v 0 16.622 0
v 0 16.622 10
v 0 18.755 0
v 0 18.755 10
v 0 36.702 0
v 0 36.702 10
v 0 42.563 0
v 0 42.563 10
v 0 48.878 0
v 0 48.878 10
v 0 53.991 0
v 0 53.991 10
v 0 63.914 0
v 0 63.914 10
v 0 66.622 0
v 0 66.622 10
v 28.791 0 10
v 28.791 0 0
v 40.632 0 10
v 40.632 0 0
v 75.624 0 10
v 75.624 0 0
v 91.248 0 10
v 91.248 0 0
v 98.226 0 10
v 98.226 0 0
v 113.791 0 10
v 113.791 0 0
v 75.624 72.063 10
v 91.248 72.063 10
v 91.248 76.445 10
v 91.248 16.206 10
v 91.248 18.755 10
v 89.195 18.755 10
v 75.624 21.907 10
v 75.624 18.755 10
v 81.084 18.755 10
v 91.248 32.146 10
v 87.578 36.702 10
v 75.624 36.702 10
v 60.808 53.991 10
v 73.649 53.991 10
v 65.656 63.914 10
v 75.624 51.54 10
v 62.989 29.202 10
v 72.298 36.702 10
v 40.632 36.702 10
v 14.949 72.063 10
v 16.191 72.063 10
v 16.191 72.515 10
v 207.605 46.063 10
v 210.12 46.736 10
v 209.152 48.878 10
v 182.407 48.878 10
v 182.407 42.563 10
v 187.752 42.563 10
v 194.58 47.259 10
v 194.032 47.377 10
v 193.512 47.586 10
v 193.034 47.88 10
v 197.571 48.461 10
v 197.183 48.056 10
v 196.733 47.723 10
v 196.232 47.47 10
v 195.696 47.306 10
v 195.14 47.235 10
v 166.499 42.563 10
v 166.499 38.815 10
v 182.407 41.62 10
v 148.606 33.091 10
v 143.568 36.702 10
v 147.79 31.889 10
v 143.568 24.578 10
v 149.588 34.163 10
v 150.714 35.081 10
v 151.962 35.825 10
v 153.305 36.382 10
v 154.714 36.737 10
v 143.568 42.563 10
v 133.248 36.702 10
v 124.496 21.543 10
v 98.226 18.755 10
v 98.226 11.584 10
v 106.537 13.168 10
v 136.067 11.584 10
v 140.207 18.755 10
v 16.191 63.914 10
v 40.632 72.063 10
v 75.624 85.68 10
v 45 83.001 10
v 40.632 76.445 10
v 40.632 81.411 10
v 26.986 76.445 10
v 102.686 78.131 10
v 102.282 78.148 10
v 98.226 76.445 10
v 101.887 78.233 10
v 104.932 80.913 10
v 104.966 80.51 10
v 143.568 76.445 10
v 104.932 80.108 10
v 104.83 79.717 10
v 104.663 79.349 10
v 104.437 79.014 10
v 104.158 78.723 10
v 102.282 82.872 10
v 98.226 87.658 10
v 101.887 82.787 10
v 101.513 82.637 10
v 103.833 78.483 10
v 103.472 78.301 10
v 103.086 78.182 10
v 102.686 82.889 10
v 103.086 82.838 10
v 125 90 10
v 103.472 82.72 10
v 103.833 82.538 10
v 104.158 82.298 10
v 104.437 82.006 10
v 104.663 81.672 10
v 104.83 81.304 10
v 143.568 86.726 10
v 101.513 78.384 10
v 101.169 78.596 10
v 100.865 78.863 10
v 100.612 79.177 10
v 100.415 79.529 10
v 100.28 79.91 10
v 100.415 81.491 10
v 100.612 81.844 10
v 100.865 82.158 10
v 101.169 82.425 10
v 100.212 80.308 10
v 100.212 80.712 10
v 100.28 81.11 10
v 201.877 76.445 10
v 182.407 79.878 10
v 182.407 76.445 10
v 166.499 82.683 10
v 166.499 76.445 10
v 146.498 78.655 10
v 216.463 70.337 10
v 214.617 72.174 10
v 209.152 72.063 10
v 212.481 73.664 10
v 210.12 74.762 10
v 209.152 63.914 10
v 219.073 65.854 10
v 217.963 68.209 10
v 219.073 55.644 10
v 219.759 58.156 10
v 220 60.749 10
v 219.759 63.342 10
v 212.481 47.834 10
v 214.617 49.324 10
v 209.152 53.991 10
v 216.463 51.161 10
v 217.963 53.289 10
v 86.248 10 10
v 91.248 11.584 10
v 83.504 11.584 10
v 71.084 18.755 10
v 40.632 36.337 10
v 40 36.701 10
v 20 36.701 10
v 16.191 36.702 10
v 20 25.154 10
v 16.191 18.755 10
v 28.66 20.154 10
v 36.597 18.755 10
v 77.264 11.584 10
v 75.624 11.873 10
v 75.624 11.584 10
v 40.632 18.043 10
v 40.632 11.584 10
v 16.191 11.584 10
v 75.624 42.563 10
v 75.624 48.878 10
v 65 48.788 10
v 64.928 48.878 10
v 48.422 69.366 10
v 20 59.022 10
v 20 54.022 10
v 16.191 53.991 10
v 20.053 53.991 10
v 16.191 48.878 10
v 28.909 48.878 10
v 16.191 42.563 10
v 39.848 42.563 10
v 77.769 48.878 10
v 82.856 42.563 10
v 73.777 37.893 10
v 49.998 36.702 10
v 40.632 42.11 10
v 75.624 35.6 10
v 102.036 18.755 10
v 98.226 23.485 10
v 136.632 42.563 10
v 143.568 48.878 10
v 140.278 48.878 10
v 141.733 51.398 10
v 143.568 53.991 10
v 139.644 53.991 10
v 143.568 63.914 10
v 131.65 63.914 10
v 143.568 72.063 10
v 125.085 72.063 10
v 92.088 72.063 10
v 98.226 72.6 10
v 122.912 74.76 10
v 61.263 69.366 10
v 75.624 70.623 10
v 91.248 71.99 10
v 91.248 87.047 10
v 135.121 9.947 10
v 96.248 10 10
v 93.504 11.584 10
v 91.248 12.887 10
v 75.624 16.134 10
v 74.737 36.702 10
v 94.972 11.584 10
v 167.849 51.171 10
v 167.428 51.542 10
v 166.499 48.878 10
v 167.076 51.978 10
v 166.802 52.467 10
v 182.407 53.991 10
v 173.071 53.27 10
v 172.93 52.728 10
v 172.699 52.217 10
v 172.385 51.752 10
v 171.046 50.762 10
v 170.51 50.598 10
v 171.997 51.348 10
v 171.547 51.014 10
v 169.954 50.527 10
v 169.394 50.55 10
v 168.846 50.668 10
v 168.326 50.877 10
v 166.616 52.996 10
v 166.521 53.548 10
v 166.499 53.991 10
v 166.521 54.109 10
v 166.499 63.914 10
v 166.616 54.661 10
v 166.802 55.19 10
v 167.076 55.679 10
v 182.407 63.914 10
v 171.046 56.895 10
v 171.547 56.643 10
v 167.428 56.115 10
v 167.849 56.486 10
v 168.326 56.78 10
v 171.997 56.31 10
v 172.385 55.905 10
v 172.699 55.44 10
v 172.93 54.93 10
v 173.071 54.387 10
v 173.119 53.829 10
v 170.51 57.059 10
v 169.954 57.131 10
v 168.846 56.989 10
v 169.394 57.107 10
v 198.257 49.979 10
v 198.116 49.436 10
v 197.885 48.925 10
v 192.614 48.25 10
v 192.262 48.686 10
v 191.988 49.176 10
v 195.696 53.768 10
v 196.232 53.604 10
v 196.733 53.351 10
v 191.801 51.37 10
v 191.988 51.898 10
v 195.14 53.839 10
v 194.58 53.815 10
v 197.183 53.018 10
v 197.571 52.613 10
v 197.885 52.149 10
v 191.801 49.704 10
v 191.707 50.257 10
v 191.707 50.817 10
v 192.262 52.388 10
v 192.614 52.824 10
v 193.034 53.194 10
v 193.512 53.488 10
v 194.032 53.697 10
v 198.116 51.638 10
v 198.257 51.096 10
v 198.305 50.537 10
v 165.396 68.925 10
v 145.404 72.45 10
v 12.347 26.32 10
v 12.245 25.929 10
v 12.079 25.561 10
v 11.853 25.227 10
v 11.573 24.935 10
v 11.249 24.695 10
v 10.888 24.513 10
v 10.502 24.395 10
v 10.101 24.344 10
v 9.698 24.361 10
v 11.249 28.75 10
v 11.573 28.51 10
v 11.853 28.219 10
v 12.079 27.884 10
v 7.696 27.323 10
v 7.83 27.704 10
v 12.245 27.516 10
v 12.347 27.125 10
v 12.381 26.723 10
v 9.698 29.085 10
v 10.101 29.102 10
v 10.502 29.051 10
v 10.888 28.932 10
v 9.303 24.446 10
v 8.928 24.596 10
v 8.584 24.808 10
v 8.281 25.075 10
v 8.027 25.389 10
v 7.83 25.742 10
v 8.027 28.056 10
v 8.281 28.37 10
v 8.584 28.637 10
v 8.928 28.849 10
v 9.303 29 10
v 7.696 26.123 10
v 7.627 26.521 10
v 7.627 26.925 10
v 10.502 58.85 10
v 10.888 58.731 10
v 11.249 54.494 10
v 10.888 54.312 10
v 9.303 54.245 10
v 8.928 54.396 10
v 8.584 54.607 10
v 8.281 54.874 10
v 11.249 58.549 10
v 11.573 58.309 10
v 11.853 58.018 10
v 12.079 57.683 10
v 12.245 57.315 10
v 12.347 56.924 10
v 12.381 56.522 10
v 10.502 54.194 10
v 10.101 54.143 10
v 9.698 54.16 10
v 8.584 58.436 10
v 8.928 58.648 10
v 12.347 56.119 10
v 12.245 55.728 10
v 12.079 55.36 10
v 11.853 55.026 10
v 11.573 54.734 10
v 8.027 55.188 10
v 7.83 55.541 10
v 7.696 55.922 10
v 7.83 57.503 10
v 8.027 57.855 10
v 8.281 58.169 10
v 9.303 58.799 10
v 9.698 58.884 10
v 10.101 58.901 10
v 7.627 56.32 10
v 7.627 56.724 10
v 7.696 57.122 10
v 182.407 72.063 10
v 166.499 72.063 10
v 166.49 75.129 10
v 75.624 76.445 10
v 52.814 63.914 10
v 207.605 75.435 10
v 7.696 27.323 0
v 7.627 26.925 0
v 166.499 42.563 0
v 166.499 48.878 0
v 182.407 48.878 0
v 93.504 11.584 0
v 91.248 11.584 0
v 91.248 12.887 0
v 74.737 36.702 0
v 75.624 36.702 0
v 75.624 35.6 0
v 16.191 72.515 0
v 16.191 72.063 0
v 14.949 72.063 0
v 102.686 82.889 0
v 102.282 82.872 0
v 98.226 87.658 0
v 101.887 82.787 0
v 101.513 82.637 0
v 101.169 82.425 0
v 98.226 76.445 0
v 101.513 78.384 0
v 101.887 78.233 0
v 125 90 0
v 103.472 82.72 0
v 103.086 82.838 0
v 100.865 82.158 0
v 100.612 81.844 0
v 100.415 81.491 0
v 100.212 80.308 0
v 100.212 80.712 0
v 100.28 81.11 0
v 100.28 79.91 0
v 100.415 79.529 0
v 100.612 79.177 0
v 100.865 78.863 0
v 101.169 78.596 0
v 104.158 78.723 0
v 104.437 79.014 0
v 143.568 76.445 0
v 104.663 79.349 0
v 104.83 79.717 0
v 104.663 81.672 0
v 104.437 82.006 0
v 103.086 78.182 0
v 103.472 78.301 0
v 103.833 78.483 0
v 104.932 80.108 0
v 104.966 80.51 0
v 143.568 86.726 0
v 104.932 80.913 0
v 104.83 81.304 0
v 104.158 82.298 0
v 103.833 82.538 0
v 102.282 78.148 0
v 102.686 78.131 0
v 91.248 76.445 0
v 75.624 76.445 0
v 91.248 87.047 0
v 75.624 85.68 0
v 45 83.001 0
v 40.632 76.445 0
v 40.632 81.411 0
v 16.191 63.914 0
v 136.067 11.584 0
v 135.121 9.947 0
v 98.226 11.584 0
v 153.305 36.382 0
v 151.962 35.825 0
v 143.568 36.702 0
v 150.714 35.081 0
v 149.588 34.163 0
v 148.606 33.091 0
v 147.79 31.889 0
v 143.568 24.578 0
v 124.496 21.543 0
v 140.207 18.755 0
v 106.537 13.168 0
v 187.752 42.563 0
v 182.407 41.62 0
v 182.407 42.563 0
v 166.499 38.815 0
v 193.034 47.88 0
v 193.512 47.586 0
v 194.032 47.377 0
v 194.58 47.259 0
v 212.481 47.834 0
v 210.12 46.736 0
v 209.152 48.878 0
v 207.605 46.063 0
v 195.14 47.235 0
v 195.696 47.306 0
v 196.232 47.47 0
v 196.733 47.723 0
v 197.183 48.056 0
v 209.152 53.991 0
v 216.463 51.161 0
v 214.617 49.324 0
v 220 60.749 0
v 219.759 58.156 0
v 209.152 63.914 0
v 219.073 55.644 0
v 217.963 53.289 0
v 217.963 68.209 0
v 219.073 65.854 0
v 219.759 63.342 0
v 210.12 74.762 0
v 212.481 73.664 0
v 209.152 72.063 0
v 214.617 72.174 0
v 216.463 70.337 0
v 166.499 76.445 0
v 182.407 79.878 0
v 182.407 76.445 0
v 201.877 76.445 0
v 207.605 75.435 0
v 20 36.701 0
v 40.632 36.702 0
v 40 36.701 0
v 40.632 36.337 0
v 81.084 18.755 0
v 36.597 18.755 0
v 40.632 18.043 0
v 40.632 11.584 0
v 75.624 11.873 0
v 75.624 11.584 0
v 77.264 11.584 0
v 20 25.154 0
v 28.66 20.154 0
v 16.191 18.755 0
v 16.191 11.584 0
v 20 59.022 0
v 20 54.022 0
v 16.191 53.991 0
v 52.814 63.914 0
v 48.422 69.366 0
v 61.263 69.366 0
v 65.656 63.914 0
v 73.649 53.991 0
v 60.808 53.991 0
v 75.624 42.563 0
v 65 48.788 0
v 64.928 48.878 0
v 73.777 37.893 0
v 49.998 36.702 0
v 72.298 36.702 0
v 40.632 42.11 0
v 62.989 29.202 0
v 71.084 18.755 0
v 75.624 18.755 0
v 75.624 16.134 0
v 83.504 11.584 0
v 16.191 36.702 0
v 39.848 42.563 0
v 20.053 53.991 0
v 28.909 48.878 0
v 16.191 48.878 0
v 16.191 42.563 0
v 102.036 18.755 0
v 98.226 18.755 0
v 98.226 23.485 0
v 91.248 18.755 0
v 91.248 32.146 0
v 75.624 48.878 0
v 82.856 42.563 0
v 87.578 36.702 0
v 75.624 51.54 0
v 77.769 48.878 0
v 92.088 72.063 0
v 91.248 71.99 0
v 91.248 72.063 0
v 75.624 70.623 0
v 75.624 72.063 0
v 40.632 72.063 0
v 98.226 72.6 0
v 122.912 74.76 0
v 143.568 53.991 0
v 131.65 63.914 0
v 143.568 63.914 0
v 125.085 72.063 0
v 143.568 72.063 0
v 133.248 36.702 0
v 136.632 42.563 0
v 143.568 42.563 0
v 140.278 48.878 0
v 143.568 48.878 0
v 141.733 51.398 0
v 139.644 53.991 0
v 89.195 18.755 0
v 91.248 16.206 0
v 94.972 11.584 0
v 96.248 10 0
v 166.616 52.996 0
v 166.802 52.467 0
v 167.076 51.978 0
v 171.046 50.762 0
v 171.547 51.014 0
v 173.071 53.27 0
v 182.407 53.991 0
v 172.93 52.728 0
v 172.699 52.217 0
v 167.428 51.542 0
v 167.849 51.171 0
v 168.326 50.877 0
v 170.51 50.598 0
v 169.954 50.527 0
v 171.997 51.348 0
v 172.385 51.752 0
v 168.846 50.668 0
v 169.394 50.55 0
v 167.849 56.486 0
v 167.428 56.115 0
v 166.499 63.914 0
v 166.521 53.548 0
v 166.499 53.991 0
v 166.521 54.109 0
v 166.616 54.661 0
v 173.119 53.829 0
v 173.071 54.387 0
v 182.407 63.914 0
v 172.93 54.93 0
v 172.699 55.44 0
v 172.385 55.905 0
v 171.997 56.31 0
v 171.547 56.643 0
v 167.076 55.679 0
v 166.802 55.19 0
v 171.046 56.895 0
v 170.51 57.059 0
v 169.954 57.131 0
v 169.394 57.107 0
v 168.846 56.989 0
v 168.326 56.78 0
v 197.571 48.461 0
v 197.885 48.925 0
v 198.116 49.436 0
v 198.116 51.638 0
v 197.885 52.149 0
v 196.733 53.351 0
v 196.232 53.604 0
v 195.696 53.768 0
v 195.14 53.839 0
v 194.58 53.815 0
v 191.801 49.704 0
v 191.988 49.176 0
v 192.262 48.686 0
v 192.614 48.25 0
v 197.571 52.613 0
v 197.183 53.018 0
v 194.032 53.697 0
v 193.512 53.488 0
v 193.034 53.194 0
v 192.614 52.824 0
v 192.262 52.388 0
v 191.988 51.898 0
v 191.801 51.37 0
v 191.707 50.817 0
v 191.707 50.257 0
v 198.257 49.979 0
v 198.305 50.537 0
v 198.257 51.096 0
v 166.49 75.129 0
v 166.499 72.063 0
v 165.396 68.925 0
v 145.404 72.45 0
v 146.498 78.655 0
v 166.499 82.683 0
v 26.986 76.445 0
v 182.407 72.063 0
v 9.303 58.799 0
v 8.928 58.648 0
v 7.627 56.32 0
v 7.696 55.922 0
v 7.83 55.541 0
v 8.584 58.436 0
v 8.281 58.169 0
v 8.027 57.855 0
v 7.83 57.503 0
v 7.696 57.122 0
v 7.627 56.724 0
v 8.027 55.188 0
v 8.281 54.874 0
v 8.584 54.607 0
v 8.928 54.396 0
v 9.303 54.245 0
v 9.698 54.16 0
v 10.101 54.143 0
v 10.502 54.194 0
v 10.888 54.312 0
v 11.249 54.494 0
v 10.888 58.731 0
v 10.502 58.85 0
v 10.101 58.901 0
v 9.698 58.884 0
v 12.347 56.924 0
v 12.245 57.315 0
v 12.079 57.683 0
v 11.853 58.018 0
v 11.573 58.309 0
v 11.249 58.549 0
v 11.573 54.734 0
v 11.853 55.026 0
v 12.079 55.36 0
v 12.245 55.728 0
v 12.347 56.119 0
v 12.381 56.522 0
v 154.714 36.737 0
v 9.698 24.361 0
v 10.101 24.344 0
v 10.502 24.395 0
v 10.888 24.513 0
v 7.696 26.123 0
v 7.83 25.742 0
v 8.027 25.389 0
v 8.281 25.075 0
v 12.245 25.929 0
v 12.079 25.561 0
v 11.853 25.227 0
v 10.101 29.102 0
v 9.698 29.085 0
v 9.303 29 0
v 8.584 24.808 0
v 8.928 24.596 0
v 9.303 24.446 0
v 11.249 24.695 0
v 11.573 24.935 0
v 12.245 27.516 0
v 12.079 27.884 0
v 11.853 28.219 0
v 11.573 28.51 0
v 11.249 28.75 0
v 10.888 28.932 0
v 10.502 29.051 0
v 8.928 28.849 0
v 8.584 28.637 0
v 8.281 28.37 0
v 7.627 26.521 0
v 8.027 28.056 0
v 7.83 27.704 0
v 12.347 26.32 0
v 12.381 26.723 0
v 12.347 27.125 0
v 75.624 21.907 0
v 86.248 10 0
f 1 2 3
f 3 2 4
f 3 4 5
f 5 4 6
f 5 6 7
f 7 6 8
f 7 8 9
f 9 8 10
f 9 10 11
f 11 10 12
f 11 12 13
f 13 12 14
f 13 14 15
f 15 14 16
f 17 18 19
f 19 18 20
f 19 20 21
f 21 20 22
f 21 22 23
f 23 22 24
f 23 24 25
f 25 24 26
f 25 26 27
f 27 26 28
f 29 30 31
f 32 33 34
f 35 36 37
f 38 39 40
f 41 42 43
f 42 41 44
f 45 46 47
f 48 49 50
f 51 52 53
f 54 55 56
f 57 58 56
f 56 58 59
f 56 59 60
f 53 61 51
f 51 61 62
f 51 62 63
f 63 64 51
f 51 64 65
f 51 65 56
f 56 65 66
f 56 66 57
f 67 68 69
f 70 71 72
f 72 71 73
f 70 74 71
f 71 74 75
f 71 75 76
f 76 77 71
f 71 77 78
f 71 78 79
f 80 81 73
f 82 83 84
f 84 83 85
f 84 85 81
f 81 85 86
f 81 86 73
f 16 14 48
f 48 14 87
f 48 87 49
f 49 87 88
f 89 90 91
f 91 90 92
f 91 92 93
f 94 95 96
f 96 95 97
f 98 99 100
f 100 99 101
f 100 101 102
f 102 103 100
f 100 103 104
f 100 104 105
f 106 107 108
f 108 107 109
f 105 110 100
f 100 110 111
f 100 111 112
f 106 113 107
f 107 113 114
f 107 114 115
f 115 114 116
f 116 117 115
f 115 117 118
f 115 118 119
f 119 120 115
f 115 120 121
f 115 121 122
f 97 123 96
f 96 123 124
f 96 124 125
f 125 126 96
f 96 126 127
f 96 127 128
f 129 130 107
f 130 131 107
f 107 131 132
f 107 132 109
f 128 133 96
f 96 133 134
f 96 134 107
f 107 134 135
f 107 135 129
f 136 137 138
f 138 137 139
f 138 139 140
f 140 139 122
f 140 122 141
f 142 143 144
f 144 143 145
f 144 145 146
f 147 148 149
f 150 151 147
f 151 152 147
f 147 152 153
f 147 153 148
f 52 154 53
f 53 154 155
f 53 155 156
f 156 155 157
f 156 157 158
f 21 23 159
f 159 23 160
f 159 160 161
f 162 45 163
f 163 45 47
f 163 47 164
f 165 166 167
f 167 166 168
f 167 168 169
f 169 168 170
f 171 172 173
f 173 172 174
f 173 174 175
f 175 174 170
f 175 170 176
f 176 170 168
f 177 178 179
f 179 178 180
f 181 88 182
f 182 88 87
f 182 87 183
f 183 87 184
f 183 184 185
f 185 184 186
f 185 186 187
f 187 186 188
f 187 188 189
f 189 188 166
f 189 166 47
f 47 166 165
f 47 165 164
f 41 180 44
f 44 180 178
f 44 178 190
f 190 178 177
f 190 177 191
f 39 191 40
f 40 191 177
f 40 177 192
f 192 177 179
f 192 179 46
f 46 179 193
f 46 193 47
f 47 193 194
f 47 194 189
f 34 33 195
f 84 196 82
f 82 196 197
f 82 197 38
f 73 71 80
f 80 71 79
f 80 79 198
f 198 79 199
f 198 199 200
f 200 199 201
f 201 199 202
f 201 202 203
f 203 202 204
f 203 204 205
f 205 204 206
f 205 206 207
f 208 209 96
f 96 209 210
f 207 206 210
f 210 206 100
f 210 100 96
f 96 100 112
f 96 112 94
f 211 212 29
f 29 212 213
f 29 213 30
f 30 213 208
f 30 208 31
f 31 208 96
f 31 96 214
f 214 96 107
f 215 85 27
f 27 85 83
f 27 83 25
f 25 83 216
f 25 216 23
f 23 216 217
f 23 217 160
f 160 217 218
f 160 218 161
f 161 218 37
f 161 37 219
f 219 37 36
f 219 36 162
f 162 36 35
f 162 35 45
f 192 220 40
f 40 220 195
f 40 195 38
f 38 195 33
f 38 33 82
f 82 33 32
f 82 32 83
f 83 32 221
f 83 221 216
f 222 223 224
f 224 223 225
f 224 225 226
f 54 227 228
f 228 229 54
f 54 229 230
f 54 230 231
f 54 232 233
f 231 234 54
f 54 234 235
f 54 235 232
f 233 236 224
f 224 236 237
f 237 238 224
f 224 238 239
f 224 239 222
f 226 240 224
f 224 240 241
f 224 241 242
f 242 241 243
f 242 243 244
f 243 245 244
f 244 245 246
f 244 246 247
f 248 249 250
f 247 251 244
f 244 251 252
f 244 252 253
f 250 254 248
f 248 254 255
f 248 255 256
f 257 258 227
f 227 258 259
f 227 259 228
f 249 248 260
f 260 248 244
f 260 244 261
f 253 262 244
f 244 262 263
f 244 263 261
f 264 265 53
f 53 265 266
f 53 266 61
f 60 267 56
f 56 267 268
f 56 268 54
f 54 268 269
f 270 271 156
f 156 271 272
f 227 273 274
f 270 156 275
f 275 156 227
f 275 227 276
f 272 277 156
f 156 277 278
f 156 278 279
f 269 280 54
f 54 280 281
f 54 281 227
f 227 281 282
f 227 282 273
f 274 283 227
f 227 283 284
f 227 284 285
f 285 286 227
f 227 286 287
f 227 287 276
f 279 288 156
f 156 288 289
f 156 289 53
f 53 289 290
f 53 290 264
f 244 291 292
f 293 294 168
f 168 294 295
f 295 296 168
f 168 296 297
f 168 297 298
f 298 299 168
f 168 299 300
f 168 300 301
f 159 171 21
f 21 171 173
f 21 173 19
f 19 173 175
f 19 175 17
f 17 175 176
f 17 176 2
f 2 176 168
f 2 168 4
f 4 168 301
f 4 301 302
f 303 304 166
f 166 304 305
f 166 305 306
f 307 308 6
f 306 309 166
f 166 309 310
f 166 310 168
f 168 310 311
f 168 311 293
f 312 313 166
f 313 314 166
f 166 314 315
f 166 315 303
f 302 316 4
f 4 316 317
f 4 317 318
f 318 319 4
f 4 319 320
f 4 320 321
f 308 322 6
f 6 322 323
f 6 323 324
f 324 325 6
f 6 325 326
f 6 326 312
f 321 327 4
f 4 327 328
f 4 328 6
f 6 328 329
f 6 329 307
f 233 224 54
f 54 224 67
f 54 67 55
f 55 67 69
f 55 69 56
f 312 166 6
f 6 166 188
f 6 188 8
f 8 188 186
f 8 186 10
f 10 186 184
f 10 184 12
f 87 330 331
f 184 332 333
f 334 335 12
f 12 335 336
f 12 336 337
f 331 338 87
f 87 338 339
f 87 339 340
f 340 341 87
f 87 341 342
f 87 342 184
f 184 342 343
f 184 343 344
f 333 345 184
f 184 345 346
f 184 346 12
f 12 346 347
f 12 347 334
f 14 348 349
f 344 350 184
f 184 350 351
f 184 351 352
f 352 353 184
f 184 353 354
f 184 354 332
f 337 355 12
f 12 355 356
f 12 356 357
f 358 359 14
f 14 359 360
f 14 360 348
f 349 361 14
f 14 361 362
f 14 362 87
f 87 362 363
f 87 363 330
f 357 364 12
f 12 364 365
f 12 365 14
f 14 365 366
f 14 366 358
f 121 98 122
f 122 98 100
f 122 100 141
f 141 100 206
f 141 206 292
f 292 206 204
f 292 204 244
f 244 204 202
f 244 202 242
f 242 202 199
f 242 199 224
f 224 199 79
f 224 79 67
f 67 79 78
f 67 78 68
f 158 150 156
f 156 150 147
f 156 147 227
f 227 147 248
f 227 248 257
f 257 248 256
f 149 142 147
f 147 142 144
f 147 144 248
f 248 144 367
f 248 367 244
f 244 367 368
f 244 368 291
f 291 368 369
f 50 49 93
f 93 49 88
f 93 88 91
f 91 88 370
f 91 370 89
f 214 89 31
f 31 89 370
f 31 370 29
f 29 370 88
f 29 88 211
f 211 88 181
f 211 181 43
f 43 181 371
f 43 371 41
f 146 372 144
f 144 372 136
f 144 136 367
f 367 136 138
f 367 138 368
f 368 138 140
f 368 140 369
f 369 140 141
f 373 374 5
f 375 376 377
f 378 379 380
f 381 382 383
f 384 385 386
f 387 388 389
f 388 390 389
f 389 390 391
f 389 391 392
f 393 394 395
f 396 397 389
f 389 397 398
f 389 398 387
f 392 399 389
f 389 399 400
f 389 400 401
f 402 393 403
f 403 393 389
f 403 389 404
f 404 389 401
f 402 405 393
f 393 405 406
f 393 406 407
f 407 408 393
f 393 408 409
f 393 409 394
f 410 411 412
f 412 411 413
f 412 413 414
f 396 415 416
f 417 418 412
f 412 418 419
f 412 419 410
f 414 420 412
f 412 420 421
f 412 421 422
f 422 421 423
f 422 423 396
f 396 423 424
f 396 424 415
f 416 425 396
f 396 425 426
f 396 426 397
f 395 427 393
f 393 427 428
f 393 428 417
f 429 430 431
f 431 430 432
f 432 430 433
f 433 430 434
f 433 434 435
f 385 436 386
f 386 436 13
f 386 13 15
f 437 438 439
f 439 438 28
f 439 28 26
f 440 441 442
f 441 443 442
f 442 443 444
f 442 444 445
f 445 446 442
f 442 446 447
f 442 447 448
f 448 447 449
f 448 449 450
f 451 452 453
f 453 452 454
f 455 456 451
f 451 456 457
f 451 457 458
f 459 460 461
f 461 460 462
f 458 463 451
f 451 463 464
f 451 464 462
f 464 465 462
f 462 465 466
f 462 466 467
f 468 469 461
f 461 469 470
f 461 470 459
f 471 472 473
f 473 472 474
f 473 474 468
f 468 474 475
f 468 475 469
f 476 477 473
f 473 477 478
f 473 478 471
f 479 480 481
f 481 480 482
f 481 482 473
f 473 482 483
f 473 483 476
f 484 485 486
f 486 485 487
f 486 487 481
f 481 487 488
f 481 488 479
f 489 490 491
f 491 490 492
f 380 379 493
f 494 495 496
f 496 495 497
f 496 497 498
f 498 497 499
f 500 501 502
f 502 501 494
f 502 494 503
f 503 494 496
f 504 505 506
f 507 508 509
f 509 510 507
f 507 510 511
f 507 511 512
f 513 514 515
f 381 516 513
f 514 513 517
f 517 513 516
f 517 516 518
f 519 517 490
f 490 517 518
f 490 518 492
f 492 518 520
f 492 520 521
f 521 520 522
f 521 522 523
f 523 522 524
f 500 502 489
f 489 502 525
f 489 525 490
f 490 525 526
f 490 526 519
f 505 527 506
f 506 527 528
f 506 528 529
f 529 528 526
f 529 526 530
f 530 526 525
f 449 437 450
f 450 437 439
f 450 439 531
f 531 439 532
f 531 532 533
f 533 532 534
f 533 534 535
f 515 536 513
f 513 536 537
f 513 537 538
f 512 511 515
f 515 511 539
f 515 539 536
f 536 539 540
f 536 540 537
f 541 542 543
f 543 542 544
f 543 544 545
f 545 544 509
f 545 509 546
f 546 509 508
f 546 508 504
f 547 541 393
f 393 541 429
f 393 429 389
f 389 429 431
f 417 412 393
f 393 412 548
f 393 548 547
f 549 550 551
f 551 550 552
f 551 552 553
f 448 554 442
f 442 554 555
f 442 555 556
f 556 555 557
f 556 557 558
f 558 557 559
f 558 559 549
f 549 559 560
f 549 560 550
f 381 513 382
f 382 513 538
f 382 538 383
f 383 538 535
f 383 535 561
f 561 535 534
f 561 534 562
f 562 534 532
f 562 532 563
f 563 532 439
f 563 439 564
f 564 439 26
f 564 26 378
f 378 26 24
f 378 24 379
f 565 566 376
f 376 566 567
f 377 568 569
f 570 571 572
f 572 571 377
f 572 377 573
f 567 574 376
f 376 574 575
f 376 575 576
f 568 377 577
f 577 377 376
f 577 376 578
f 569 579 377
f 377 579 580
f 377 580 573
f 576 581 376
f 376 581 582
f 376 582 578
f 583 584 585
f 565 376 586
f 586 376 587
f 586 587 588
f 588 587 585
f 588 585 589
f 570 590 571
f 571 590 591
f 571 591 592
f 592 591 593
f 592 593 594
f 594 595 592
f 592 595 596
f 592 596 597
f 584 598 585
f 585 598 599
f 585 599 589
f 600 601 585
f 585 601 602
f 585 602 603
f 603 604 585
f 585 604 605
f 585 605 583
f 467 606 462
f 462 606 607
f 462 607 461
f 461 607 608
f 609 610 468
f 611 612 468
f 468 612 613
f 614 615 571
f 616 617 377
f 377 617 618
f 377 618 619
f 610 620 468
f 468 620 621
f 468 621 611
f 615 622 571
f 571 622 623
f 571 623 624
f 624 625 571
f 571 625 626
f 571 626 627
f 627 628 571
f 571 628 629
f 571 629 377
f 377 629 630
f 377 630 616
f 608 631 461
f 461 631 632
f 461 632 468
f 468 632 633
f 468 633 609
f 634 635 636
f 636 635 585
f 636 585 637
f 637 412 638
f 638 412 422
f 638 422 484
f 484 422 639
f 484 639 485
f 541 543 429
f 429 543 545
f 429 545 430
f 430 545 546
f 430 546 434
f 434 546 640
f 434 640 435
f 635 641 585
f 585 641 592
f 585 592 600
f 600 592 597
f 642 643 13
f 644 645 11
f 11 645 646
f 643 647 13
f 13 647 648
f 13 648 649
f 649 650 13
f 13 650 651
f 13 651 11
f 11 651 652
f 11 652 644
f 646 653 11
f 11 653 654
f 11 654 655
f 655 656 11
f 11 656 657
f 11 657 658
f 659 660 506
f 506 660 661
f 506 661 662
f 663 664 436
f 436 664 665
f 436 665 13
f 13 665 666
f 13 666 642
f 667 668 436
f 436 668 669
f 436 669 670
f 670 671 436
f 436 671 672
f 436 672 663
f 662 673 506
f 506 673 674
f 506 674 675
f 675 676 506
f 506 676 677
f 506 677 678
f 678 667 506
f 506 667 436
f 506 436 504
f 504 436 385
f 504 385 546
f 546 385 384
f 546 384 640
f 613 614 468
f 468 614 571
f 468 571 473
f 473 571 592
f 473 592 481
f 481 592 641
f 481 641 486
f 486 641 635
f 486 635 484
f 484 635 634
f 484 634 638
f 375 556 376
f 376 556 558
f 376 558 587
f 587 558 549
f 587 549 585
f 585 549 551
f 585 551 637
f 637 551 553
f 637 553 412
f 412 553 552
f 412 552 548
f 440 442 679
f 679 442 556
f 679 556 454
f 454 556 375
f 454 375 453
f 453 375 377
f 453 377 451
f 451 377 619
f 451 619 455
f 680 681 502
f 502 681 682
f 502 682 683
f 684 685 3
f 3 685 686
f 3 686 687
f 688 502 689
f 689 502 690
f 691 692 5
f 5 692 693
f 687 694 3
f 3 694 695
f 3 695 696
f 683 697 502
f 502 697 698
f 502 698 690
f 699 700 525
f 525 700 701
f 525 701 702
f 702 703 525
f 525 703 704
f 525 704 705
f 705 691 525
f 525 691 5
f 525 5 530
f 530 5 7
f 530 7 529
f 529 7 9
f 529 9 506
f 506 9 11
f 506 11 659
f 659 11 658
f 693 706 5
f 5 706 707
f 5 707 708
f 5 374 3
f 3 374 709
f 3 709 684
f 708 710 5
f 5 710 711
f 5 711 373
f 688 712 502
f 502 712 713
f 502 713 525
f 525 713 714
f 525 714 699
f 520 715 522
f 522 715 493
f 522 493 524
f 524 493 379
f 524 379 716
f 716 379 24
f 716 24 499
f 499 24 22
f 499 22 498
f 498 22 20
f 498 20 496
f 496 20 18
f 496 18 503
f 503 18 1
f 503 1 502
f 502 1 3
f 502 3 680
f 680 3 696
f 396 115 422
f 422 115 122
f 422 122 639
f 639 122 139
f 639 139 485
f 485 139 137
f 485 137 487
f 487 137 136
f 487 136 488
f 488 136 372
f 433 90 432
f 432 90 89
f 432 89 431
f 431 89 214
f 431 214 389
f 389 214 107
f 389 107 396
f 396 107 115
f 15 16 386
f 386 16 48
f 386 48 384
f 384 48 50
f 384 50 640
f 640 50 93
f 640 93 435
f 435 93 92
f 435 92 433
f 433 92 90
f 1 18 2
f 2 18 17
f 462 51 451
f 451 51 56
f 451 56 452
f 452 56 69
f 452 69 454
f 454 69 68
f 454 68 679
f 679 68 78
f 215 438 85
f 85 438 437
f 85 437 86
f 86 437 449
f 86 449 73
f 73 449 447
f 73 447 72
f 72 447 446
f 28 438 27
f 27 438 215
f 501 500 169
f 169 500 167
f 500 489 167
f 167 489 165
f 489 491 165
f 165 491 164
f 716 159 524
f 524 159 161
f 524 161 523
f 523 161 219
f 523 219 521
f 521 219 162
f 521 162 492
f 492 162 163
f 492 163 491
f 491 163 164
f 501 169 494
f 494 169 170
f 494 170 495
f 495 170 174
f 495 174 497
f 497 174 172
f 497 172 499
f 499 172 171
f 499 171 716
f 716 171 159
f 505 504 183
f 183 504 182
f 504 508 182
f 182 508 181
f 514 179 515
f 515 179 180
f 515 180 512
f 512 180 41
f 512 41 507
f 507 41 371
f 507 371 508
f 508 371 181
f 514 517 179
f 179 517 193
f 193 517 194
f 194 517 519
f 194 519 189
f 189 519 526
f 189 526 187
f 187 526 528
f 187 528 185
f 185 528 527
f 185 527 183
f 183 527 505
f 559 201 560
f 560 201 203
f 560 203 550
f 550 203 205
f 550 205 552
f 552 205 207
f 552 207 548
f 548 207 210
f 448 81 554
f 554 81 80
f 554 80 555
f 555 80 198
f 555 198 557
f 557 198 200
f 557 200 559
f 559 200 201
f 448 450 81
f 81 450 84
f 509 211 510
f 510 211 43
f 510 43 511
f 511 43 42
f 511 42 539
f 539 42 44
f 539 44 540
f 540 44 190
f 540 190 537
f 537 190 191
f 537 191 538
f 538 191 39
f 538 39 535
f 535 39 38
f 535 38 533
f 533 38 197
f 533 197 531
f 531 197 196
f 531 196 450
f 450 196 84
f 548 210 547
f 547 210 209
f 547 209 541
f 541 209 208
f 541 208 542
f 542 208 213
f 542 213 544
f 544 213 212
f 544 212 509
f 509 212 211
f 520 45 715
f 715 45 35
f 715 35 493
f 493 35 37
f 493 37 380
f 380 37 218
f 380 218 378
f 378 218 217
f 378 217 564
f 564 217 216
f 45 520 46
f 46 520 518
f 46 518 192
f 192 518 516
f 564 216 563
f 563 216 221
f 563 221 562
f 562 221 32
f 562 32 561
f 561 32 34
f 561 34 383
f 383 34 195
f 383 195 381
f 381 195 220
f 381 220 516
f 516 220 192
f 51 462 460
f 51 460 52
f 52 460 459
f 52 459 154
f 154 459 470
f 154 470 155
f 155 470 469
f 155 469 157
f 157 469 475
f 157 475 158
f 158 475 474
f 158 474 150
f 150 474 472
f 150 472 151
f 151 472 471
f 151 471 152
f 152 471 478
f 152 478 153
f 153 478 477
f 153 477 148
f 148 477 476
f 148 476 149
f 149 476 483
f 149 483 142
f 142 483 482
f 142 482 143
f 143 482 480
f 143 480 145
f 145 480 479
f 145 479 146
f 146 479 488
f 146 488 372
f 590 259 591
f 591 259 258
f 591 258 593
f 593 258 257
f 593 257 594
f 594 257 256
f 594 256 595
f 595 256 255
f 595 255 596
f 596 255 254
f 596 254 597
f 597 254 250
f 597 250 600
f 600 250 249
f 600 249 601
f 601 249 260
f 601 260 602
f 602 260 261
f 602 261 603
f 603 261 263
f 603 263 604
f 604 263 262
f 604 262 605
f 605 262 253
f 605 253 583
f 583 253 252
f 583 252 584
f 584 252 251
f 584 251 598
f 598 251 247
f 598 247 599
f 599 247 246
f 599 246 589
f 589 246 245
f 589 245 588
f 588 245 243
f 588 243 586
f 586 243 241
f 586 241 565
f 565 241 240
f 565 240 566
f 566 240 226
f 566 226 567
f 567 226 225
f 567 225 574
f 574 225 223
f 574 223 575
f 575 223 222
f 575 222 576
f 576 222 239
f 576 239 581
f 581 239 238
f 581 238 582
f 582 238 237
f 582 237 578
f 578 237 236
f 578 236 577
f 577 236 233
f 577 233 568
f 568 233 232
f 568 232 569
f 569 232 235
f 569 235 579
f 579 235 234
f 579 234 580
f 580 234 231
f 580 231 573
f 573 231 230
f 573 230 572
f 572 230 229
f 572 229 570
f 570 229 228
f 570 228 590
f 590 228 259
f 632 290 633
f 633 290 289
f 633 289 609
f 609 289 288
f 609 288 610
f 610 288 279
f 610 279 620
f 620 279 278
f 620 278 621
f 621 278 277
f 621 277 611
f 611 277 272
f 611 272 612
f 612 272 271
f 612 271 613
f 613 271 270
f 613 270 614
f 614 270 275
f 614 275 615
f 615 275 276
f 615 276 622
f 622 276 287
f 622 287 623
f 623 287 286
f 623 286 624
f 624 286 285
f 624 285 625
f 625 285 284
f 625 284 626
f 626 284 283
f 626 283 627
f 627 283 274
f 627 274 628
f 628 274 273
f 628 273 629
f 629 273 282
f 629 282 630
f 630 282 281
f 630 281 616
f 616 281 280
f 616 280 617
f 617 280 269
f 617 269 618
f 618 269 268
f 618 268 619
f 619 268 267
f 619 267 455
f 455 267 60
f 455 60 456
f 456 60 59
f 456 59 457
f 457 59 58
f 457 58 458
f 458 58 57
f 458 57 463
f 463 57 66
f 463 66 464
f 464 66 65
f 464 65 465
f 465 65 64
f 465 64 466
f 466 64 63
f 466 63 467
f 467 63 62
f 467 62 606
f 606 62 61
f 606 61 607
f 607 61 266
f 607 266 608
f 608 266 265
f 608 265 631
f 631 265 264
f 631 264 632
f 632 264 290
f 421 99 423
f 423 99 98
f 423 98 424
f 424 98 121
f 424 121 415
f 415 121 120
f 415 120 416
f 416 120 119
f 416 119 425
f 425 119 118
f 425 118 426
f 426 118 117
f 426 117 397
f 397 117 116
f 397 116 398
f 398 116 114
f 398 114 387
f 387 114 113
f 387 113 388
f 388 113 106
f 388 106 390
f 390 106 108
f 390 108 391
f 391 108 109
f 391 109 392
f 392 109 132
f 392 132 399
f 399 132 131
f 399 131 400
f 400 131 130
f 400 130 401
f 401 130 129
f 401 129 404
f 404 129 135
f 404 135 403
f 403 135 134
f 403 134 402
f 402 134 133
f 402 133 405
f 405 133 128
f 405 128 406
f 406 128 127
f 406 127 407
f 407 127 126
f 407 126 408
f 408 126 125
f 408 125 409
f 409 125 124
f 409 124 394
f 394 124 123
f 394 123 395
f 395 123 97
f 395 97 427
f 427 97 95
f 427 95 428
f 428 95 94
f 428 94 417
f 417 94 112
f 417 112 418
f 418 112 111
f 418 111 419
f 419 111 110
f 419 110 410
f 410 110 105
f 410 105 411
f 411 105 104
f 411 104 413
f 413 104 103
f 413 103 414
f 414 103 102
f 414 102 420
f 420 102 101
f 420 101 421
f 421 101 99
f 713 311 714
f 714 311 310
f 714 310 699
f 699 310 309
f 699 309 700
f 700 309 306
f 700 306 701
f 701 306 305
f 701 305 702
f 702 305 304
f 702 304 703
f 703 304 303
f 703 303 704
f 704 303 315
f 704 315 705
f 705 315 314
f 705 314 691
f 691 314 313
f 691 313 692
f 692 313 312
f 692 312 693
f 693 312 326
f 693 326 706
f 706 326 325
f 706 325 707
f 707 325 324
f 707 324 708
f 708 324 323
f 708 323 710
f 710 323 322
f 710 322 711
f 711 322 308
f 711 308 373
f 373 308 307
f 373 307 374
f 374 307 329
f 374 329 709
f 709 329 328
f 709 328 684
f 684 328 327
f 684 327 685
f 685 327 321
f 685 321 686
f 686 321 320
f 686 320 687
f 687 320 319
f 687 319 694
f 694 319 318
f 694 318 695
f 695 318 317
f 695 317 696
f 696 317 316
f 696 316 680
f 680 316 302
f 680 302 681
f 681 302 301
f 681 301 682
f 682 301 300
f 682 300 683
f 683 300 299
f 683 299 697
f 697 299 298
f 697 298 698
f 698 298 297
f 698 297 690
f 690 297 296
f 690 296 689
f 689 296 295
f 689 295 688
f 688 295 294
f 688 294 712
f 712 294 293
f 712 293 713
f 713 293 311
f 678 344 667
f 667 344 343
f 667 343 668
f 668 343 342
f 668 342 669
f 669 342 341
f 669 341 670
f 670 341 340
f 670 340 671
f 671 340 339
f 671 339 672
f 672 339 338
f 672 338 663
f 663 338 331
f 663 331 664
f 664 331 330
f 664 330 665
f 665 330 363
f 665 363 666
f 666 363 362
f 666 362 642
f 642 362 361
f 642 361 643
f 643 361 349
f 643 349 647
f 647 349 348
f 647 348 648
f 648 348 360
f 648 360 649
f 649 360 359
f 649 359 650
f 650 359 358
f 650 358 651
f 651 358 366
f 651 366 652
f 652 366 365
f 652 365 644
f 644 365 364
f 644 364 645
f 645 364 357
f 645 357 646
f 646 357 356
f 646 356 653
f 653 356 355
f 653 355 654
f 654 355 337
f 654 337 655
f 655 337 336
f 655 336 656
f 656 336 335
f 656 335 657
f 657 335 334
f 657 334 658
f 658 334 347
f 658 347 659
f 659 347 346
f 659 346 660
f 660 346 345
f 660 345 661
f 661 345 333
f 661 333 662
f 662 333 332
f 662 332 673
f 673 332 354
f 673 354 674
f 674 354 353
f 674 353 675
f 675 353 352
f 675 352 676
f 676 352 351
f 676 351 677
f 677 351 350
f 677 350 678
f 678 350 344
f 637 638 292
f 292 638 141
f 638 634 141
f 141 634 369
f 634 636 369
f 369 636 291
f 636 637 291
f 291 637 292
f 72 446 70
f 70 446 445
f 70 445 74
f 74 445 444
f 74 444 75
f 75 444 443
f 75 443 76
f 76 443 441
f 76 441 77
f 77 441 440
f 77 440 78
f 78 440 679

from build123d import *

# Parameters (mm, degrees)
ESQUISSE1_W                             = 220
ESQUISSE1_H                             = 90
BOSS_EXTRU_1_DEPTH                      = 10
ESQUISSE2_OUTSIDE_W                     = 269.582
ESQUISSE2_OUTSIDE_H                     = 139.582
ENL_V_MAT_EXTRU_1_DEPTH                 = 238.907545067
ENL_V_MAT_EXTRU_2_DEPTH                 = 238.907545067
CONG_1_R                                = 15
ESQUISSE4_R                             = 3.305
ENL_V_MAT_EXTRU_3_DEPTH                 = 238.90731446
PER_AGE_POUR_CROUS_AUTO_BLOQUANTS_300_D = 4.7625
PER_AGE_POUR_CROUS_AUTO_BLOQUANTS_3_2_D = 4.7625
ENL_V_MAT_EXTRU_4_DEPTH                 = 10
CONG_2_R                                = 10


with BuildPart() as part:
    # Esquisse1 → Boss.-Extru.1 (new body)
    with BuildSketch(Plane.XY):
        with Locations((110, 45)):
            Rectangle(ESQUISSE1_W, ESQUISSE1_H)
    extrude(amount=BOSS_EXTRU_1_DEPTH)

    # Esquisse2 outside → Enlèv. mat.-Extru.1 (cut, through all)
    with BuildSketch(Plane.XY.offset(10)):
        with Locations((110, 45)):
            Rectangle(ESQUISSE2_OUTSIDE_W, ESQUISSE2_OUTSIDE_H)
        Polygon((220, 73.248936833), (125, 90), (45, 83.000906918), (0, 66.622246376), (0, 16.622246376), (28.790575259, 0), (113.790575259, 0), (135.121280108, 9.946671025), (150.121280108, 35.927433138), (220, 48.248936833), align=None, mode=Mode.SUBTRACT)
    extrude(amount=-ENL_V_MAT_EXTRU_1_DEPTH, mode=Mode.SUBTRACT)

    # Esquisse3 → Enlèv. mat.-Extru.2 (cut, through all)
    with BuildSketch(Plane.XY.offset(10)):
        Polygon((124.495639968, 21.542522439), (141.732730573, 51.398039143), (122.912069568, 74.760032194), (61.263110797, 69.366447183), (106.536954459, 13.168249856), align=None)
        Polygon((96.247958869, 10), (73.776753989, 37.893395035), (62.988565413, 29.202319765), align=None)
        Polygon((20, 25.154266119), (20, 36.701271503), (40, 36.701271503), (86.247958869, 10), (28.660254038, 20.154266119), align=None)
        Polygon((20, 54.021779578), (49.998184356, 36.702319765), (65, 48.78793618), (48.421740656, 69.366447183), (20, 59.021779578), align=None)
    extrude(amount=-ENL_V_MAT_EXTRU_2_DEPTH, mode=Mode.SUBTRACT)

    # Congé1
    # the kernel refuses this fillet: 15 mm, written as the material it takes off along each edge
    with BuildSketch(Plane(origin=(220, 73.248936833, 41.466236169), x_dir=(-0.9848077530122094, 0.17364817766692334, 0), z_dir=(0, 0, -1))) as cong_1_piece_1:
        with BuildLine():
            CenterArc((CONG_1_R * 0.839099631177, -CONG_1_R), CONG_1_R, 90, 80)
            Line((-CONG_1_R * 0.145708121835, -CONG_1_R * 0.826351822333), (0, 0))
            Line((0, 0), (CONG_1_R * 0.839099631177, 0))
        make_face()
    extrude(amount=72.932472338, mode=Mode.SUBTRACT)
    with BuildSketch(Plane(origin=(220, 48.248936833, 41.466236169), x_dir=(-0.9848077530122079, -0.17364817766693147, 0), z_dir=(0, 0, -1))) as cong_1_piece_2:
        with BuildLine():
            CenterArc((CONG_1_R * 0.839099631177, CONG_1_R), CONG_1_R, 190, 80)
            Line((-CONG_1_R * 0.145708121835, CONG_1_R * 0.826351822333), (0, 0))
            Line((0, 0), (CONG_1_R * 0.839099631177, 0))
        make_face()
    extrude(amount=72.932472338, mode=Mode.SUBTRACT)

    # Esquisse4 → Enlèv. mat.-Extru.3 (cut, through all)
    with BuildSketch(Plane.XY.offset(10)):
        with Locations((194.999750621, 50.537155323)):
            Circle(ESQUISSE4_R)
        with Locations((169.766644599, 53.836955846)):
            Circle(ESQUISSE4_R)
    extrude(amount=-ENL_V_MAT_EXTRU_3_DEPTH, mode=Mode.SUBTRACT)

    # Per_age pour _crous auto-bloquants 300 (through all)
    with Locations(Plane.XY.offset(10)):
        with Locations((102.584612496, 80.510258923)):
            Hole(PER_AGE_POUR_CROUS_AUTO_BLOQUANTS_300_D / 2)

    # Per_age pour _crous auto-bloquants 3 2 (through all)
    with Locations(Plane.XY.offset(10)):
        with Locations((10, 56.521779578), (10, 26.722713174)):
            Hole(PER_AGE_POUR_CROUS_AUTO_BLOQUANTS_3_2_D / 2)

    # Esquisse10 → Enlèv. mat.-Extru.4 (cut)
    with BuildSketch(Plane.XY.offset(10)):
        Polygon((146.450960741, 78.662842867), (145.356977222, 72.458554023), (165.348574608, 68.933496016), (166.442558127, 75.13778486), align=None)
    extrude(amount=-ENL_V_MAT_EXTRU_4_DEPTH, mode=Mode.SUBTRACT)

    # Congé2
    cong_2_edges = [part.edges().sort_by_distance(p)[0] for p in [
        (150.121280108, 35.927433138, 5),
    ]]
    fillet(cong_2_edges, radius=CONG_2_R)


solid = part.part
